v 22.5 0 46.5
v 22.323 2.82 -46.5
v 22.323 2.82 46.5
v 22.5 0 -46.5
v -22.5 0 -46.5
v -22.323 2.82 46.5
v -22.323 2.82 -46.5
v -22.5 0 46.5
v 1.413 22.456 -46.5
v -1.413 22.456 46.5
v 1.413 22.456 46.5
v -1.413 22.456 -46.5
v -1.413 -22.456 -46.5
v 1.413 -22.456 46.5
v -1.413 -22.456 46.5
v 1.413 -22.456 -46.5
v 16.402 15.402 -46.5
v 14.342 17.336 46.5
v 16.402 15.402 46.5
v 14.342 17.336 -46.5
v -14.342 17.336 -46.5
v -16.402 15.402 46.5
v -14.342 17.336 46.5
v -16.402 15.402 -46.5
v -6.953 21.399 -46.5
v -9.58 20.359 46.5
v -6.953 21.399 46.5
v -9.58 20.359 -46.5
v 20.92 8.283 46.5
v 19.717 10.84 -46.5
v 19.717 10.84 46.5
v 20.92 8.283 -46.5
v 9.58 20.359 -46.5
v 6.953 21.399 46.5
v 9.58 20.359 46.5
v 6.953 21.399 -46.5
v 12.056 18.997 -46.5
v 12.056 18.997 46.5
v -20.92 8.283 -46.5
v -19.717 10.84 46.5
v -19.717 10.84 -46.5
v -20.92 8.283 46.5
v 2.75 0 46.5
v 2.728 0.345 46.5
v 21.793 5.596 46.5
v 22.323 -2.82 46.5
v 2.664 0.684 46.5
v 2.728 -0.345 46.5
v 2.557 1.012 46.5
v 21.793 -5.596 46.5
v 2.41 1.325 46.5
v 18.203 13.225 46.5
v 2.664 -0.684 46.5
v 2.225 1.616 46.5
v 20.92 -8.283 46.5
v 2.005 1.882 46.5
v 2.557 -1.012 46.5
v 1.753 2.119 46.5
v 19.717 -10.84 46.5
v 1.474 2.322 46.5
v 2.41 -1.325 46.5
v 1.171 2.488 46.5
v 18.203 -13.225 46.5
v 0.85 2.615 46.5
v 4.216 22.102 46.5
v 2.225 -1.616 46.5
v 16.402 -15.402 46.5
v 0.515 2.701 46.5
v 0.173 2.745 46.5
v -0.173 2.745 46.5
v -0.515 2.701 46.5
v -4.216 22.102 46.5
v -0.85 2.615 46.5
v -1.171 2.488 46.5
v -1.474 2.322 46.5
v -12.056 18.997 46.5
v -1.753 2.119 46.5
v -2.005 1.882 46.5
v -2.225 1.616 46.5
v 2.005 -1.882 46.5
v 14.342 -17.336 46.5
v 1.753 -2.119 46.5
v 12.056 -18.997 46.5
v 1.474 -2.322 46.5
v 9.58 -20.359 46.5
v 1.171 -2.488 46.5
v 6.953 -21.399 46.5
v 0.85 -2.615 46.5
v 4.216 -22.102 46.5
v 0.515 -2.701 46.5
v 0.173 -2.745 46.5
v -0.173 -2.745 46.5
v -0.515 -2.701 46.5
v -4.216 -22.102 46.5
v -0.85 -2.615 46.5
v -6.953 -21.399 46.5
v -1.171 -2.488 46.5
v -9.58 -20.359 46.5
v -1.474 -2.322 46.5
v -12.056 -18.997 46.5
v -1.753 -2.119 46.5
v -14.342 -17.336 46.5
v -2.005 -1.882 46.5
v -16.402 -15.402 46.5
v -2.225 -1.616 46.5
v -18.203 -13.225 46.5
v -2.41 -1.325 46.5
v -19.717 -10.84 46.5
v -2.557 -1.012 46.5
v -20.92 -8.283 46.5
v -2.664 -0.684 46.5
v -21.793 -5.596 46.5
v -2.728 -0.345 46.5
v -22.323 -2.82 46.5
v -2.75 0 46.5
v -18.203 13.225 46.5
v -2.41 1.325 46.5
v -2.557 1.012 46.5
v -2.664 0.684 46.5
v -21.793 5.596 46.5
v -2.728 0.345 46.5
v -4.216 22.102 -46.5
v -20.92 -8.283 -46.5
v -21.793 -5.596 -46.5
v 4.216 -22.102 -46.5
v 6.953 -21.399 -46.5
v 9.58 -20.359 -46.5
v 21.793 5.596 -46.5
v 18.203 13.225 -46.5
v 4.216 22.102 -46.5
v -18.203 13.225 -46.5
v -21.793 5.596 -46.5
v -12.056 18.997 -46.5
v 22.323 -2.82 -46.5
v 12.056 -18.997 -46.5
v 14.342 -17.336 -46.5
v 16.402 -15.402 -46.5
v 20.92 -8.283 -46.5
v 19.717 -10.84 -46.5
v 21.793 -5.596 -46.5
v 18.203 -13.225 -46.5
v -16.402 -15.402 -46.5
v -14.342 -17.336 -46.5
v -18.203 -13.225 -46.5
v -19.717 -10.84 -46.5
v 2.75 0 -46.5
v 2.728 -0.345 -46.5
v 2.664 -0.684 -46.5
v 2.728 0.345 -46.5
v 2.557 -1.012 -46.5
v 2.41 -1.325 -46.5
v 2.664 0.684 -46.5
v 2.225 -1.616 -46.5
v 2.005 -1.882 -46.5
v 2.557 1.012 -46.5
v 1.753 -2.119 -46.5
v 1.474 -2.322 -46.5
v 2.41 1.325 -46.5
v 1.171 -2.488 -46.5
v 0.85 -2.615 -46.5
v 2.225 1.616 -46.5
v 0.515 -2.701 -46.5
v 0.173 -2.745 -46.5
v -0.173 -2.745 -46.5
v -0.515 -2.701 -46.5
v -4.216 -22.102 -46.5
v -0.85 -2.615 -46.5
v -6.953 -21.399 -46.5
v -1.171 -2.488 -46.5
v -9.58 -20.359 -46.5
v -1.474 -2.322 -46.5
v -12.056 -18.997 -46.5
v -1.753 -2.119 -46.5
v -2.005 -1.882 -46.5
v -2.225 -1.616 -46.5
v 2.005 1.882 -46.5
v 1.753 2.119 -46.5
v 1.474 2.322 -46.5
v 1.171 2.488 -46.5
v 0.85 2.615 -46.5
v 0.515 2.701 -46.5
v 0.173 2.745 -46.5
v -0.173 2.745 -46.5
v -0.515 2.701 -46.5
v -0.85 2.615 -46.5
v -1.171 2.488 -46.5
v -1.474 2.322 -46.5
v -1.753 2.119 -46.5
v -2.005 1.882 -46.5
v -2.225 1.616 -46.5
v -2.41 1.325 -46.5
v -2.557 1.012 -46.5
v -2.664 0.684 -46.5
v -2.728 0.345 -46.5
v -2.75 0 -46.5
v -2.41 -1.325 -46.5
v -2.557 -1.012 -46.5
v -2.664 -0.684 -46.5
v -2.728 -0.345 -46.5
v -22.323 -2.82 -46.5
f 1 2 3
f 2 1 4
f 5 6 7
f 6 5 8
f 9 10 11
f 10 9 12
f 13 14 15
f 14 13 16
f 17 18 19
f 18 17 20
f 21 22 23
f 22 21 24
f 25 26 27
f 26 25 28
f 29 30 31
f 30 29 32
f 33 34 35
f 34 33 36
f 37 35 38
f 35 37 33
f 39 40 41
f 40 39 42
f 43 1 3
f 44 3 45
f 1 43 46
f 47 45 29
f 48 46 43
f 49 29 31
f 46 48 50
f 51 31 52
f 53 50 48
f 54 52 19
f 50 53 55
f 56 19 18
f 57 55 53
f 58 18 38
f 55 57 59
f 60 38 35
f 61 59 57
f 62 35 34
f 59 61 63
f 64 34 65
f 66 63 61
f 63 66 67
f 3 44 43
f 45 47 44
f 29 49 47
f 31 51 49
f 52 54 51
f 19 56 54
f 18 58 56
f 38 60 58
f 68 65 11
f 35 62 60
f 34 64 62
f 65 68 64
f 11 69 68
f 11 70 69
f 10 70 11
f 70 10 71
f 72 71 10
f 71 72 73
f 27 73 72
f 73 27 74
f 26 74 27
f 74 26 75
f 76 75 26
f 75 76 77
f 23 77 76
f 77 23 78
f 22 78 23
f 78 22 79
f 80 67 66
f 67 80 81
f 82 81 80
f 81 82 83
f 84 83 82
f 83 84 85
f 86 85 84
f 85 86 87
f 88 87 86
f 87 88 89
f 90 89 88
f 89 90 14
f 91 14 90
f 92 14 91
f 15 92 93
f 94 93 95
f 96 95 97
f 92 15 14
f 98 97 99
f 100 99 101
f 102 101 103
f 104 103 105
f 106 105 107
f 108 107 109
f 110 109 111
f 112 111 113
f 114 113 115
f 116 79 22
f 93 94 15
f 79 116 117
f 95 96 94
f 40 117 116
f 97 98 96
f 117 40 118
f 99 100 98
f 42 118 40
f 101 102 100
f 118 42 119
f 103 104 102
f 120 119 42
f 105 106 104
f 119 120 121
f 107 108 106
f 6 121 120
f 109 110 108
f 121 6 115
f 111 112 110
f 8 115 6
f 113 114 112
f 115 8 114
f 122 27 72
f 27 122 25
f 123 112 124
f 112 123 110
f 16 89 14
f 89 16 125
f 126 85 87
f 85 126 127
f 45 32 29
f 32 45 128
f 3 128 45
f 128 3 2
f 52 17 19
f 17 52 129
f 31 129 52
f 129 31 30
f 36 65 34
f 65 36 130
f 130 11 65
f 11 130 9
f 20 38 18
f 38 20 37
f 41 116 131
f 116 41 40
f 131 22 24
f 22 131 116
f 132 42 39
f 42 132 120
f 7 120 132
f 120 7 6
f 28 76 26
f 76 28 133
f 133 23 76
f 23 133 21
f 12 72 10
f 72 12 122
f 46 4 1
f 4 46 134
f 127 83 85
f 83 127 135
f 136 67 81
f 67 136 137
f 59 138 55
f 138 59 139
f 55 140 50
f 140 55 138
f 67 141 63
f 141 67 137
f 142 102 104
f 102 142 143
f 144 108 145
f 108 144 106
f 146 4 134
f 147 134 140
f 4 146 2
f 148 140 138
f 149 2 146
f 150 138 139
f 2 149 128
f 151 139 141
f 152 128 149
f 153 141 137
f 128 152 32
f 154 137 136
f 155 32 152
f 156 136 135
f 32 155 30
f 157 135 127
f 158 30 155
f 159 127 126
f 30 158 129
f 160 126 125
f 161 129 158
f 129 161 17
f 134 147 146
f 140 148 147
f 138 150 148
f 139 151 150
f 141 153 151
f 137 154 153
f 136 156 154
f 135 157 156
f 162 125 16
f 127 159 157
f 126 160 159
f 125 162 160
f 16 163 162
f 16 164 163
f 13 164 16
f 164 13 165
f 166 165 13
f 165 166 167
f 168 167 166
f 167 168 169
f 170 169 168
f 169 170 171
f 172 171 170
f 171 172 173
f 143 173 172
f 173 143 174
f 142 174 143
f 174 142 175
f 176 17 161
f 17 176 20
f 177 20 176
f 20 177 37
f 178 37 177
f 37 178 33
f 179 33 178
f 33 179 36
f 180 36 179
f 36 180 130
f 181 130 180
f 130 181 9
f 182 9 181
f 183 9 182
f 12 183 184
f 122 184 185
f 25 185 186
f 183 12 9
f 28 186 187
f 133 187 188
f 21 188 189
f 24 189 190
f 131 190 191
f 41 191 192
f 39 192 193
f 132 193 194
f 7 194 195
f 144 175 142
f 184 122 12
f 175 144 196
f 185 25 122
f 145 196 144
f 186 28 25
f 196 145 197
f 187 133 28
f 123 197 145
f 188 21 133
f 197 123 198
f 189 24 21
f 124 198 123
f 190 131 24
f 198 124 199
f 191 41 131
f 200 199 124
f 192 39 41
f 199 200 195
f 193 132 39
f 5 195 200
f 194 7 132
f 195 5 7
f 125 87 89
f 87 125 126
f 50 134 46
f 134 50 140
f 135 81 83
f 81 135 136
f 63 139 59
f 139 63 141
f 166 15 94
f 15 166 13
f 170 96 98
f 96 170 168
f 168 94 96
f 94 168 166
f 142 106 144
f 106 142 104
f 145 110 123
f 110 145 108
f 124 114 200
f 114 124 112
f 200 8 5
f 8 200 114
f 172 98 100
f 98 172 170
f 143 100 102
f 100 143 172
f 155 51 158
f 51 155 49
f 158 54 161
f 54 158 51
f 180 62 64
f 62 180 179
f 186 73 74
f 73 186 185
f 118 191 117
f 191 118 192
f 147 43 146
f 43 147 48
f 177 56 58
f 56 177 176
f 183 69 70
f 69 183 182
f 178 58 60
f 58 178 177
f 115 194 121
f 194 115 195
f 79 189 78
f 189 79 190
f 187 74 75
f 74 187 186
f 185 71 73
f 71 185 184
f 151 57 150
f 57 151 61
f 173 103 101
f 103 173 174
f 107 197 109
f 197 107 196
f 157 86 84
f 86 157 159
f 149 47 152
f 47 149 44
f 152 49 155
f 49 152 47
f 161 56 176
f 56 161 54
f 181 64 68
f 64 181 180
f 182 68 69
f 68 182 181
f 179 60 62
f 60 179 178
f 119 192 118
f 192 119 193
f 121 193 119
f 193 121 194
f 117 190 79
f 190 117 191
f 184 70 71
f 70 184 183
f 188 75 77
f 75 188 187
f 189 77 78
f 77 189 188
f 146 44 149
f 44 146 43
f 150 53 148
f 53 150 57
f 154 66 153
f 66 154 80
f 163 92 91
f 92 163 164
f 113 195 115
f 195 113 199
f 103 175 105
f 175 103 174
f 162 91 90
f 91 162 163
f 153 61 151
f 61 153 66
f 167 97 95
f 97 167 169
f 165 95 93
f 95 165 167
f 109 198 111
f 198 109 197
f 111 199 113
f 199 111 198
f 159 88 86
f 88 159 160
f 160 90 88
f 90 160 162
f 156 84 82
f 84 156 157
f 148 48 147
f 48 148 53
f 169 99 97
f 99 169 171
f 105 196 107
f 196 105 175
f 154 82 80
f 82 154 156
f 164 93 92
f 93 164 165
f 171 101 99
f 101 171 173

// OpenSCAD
$fn = 50;


difference() {
	union() {
		translate(v = [0, 0, -46.5000000000]) {
			cylinder(h = 93, r = 22.5000000000);
		}
	}
	union() {
		translate(v = [0, 0, -100.0000000000]) {
			cylinder(h = 200, r = 2.7500000000);
		}
	}
}
